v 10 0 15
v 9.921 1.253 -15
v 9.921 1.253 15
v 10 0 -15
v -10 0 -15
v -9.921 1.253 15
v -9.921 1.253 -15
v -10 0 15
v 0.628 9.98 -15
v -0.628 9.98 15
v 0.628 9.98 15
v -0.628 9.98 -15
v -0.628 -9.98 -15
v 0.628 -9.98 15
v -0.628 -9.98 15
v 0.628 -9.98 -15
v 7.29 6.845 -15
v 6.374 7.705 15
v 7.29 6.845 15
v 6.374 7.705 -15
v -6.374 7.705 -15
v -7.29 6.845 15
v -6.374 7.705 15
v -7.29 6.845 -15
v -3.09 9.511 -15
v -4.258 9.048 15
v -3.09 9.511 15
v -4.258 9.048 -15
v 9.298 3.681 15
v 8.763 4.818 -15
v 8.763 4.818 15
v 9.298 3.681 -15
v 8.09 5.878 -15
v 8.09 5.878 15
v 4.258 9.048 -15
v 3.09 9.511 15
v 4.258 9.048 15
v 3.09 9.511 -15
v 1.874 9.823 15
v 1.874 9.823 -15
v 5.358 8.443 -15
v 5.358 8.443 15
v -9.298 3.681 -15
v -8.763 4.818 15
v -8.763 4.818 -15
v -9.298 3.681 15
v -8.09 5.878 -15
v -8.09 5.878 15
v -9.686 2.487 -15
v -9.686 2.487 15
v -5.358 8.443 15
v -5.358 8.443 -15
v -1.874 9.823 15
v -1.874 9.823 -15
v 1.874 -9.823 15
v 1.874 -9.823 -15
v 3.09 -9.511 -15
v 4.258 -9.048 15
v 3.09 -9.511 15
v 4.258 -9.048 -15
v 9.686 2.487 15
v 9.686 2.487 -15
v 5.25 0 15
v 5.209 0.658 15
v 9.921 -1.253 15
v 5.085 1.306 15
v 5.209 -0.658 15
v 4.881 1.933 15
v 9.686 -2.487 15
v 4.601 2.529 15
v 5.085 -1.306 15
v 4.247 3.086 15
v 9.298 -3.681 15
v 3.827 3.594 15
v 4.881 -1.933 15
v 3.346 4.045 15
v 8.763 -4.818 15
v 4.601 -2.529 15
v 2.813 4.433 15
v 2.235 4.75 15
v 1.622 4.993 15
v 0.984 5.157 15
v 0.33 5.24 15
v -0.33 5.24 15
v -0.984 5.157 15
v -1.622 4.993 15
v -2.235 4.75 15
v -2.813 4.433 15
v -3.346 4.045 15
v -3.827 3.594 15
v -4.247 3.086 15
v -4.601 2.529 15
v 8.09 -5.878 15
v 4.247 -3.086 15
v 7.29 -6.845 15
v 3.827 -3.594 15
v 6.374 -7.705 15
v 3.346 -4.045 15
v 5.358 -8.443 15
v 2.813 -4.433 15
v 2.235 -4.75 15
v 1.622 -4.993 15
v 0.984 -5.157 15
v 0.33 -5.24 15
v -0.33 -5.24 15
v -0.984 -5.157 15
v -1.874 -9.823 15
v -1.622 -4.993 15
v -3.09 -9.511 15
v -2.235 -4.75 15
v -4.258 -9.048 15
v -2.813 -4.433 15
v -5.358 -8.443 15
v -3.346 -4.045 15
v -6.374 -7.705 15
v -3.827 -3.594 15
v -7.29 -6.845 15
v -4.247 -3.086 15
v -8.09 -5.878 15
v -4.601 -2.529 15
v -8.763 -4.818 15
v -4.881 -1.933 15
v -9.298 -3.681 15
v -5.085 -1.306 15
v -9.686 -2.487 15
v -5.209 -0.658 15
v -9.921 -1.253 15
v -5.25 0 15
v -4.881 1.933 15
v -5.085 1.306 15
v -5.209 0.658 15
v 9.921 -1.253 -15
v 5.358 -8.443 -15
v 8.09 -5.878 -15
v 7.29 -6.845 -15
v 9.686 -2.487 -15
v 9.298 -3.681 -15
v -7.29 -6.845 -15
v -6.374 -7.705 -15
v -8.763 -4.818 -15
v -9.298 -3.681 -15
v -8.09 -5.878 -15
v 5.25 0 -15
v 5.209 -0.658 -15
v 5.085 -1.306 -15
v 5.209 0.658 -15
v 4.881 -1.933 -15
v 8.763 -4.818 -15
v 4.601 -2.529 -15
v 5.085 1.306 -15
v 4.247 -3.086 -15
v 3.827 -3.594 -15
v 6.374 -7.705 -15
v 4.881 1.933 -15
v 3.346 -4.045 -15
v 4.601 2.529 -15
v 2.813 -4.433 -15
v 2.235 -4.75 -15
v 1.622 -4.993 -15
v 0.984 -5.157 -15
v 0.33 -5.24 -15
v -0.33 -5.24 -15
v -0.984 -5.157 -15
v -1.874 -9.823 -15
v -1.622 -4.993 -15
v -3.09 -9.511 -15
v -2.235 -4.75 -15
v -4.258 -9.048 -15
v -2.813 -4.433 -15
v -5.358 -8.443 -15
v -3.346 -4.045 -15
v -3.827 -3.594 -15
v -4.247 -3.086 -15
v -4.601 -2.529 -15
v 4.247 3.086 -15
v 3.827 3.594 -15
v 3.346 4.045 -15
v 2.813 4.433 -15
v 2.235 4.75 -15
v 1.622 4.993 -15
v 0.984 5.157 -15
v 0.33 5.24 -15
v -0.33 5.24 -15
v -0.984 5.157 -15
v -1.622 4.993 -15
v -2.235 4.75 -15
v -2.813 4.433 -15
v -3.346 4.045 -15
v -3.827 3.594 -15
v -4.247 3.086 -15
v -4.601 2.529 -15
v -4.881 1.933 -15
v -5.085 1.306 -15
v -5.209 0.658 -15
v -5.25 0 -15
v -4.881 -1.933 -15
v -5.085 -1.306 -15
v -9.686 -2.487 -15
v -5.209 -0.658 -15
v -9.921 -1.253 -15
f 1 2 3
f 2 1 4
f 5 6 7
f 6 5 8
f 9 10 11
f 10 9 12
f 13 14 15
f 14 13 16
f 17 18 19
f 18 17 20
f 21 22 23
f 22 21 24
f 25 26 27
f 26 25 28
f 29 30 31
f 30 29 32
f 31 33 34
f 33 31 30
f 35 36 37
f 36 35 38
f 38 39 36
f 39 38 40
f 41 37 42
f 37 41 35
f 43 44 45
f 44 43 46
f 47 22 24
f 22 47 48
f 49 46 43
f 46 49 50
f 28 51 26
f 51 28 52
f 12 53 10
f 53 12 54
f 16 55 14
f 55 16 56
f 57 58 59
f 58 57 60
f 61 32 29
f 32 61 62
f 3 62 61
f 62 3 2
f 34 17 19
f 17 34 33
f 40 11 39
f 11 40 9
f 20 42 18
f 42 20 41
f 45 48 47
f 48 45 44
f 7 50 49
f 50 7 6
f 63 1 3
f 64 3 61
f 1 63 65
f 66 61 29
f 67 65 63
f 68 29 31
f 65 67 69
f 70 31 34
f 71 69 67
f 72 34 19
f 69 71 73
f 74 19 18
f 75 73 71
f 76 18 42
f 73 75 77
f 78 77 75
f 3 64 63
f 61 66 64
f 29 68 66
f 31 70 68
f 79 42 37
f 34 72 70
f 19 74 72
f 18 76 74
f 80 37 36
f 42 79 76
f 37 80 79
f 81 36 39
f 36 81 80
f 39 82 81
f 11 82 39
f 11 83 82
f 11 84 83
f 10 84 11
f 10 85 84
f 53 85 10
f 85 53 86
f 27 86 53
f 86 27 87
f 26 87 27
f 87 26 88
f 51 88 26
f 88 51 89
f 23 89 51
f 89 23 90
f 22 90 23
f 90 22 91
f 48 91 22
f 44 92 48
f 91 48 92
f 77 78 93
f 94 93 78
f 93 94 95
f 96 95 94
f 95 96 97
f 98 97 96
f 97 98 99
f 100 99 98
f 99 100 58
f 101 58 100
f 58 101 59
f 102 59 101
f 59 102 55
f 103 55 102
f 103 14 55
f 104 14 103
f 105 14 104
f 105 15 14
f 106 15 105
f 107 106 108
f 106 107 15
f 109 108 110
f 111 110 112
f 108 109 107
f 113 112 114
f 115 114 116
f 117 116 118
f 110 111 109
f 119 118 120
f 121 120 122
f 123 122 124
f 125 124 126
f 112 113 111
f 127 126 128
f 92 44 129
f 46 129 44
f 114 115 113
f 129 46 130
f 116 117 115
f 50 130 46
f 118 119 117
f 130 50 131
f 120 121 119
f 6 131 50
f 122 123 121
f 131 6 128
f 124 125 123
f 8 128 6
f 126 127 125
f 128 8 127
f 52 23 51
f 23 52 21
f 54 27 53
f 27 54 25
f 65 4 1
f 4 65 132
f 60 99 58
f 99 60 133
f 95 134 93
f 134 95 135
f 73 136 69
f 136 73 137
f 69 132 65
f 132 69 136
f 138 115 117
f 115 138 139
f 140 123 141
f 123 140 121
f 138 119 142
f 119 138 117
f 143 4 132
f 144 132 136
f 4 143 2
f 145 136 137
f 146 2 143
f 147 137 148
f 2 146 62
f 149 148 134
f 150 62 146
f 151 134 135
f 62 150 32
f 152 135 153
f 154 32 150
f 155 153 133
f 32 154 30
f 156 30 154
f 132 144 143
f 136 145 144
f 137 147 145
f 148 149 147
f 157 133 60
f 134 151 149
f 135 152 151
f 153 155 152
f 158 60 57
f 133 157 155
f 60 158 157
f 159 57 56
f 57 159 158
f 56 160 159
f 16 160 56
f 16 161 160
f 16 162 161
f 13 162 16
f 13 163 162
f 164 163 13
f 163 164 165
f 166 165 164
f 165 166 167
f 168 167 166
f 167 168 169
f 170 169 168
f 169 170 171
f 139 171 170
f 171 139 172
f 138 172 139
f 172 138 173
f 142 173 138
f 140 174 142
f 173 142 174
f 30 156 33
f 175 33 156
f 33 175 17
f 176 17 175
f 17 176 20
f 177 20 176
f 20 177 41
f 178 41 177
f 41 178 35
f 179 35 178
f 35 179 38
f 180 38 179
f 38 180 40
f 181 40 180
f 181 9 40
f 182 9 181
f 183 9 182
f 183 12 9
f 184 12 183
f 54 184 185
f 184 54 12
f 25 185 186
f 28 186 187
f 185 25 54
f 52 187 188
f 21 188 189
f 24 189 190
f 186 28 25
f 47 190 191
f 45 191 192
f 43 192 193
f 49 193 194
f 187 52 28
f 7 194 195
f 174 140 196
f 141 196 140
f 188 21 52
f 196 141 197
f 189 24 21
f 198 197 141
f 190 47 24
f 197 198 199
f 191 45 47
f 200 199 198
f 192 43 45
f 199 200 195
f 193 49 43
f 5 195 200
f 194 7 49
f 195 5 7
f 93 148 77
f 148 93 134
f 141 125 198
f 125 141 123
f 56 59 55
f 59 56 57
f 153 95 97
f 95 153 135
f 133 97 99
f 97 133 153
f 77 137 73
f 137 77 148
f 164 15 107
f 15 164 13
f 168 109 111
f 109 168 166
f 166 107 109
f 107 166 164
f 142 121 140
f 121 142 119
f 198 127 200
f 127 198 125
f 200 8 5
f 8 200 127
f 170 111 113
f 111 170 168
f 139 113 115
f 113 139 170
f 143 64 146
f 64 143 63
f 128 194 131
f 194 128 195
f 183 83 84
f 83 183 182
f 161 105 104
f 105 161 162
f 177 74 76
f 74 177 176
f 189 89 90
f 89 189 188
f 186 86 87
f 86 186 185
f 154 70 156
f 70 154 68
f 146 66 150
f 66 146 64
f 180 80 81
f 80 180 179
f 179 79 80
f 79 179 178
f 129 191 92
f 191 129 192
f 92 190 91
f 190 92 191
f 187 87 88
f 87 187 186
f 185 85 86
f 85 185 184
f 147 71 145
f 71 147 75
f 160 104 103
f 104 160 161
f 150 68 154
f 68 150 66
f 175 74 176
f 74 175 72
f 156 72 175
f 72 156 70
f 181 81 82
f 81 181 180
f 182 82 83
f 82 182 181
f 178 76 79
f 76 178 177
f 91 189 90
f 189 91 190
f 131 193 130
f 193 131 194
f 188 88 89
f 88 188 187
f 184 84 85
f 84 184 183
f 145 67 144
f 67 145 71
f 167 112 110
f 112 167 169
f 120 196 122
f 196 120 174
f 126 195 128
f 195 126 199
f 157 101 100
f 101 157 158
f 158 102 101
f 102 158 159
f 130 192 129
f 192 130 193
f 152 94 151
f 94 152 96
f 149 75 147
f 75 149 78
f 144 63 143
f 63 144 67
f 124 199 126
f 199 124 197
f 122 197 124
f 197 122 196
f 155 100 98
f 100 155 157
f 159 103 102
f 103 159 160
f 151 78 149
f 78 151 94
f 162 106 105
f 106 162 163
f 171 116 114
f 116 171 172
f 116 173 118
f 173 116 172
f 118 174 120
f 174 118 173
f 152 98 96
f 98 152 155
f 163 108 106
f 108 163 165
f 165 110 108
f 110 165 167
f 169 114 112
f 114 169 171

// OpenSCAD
$fn = 50;


difference() {
	union() {
		translate(v = [0, 0, -15.0000000000]) {
			cylinder(h = 30, r = 10.0000000000);
		}
	}
	union() {
		translate(v = [0, 0, -100.0000000000]) {
			cylinder(h = 200, r = 5.2500000000);
		}
	}
}
